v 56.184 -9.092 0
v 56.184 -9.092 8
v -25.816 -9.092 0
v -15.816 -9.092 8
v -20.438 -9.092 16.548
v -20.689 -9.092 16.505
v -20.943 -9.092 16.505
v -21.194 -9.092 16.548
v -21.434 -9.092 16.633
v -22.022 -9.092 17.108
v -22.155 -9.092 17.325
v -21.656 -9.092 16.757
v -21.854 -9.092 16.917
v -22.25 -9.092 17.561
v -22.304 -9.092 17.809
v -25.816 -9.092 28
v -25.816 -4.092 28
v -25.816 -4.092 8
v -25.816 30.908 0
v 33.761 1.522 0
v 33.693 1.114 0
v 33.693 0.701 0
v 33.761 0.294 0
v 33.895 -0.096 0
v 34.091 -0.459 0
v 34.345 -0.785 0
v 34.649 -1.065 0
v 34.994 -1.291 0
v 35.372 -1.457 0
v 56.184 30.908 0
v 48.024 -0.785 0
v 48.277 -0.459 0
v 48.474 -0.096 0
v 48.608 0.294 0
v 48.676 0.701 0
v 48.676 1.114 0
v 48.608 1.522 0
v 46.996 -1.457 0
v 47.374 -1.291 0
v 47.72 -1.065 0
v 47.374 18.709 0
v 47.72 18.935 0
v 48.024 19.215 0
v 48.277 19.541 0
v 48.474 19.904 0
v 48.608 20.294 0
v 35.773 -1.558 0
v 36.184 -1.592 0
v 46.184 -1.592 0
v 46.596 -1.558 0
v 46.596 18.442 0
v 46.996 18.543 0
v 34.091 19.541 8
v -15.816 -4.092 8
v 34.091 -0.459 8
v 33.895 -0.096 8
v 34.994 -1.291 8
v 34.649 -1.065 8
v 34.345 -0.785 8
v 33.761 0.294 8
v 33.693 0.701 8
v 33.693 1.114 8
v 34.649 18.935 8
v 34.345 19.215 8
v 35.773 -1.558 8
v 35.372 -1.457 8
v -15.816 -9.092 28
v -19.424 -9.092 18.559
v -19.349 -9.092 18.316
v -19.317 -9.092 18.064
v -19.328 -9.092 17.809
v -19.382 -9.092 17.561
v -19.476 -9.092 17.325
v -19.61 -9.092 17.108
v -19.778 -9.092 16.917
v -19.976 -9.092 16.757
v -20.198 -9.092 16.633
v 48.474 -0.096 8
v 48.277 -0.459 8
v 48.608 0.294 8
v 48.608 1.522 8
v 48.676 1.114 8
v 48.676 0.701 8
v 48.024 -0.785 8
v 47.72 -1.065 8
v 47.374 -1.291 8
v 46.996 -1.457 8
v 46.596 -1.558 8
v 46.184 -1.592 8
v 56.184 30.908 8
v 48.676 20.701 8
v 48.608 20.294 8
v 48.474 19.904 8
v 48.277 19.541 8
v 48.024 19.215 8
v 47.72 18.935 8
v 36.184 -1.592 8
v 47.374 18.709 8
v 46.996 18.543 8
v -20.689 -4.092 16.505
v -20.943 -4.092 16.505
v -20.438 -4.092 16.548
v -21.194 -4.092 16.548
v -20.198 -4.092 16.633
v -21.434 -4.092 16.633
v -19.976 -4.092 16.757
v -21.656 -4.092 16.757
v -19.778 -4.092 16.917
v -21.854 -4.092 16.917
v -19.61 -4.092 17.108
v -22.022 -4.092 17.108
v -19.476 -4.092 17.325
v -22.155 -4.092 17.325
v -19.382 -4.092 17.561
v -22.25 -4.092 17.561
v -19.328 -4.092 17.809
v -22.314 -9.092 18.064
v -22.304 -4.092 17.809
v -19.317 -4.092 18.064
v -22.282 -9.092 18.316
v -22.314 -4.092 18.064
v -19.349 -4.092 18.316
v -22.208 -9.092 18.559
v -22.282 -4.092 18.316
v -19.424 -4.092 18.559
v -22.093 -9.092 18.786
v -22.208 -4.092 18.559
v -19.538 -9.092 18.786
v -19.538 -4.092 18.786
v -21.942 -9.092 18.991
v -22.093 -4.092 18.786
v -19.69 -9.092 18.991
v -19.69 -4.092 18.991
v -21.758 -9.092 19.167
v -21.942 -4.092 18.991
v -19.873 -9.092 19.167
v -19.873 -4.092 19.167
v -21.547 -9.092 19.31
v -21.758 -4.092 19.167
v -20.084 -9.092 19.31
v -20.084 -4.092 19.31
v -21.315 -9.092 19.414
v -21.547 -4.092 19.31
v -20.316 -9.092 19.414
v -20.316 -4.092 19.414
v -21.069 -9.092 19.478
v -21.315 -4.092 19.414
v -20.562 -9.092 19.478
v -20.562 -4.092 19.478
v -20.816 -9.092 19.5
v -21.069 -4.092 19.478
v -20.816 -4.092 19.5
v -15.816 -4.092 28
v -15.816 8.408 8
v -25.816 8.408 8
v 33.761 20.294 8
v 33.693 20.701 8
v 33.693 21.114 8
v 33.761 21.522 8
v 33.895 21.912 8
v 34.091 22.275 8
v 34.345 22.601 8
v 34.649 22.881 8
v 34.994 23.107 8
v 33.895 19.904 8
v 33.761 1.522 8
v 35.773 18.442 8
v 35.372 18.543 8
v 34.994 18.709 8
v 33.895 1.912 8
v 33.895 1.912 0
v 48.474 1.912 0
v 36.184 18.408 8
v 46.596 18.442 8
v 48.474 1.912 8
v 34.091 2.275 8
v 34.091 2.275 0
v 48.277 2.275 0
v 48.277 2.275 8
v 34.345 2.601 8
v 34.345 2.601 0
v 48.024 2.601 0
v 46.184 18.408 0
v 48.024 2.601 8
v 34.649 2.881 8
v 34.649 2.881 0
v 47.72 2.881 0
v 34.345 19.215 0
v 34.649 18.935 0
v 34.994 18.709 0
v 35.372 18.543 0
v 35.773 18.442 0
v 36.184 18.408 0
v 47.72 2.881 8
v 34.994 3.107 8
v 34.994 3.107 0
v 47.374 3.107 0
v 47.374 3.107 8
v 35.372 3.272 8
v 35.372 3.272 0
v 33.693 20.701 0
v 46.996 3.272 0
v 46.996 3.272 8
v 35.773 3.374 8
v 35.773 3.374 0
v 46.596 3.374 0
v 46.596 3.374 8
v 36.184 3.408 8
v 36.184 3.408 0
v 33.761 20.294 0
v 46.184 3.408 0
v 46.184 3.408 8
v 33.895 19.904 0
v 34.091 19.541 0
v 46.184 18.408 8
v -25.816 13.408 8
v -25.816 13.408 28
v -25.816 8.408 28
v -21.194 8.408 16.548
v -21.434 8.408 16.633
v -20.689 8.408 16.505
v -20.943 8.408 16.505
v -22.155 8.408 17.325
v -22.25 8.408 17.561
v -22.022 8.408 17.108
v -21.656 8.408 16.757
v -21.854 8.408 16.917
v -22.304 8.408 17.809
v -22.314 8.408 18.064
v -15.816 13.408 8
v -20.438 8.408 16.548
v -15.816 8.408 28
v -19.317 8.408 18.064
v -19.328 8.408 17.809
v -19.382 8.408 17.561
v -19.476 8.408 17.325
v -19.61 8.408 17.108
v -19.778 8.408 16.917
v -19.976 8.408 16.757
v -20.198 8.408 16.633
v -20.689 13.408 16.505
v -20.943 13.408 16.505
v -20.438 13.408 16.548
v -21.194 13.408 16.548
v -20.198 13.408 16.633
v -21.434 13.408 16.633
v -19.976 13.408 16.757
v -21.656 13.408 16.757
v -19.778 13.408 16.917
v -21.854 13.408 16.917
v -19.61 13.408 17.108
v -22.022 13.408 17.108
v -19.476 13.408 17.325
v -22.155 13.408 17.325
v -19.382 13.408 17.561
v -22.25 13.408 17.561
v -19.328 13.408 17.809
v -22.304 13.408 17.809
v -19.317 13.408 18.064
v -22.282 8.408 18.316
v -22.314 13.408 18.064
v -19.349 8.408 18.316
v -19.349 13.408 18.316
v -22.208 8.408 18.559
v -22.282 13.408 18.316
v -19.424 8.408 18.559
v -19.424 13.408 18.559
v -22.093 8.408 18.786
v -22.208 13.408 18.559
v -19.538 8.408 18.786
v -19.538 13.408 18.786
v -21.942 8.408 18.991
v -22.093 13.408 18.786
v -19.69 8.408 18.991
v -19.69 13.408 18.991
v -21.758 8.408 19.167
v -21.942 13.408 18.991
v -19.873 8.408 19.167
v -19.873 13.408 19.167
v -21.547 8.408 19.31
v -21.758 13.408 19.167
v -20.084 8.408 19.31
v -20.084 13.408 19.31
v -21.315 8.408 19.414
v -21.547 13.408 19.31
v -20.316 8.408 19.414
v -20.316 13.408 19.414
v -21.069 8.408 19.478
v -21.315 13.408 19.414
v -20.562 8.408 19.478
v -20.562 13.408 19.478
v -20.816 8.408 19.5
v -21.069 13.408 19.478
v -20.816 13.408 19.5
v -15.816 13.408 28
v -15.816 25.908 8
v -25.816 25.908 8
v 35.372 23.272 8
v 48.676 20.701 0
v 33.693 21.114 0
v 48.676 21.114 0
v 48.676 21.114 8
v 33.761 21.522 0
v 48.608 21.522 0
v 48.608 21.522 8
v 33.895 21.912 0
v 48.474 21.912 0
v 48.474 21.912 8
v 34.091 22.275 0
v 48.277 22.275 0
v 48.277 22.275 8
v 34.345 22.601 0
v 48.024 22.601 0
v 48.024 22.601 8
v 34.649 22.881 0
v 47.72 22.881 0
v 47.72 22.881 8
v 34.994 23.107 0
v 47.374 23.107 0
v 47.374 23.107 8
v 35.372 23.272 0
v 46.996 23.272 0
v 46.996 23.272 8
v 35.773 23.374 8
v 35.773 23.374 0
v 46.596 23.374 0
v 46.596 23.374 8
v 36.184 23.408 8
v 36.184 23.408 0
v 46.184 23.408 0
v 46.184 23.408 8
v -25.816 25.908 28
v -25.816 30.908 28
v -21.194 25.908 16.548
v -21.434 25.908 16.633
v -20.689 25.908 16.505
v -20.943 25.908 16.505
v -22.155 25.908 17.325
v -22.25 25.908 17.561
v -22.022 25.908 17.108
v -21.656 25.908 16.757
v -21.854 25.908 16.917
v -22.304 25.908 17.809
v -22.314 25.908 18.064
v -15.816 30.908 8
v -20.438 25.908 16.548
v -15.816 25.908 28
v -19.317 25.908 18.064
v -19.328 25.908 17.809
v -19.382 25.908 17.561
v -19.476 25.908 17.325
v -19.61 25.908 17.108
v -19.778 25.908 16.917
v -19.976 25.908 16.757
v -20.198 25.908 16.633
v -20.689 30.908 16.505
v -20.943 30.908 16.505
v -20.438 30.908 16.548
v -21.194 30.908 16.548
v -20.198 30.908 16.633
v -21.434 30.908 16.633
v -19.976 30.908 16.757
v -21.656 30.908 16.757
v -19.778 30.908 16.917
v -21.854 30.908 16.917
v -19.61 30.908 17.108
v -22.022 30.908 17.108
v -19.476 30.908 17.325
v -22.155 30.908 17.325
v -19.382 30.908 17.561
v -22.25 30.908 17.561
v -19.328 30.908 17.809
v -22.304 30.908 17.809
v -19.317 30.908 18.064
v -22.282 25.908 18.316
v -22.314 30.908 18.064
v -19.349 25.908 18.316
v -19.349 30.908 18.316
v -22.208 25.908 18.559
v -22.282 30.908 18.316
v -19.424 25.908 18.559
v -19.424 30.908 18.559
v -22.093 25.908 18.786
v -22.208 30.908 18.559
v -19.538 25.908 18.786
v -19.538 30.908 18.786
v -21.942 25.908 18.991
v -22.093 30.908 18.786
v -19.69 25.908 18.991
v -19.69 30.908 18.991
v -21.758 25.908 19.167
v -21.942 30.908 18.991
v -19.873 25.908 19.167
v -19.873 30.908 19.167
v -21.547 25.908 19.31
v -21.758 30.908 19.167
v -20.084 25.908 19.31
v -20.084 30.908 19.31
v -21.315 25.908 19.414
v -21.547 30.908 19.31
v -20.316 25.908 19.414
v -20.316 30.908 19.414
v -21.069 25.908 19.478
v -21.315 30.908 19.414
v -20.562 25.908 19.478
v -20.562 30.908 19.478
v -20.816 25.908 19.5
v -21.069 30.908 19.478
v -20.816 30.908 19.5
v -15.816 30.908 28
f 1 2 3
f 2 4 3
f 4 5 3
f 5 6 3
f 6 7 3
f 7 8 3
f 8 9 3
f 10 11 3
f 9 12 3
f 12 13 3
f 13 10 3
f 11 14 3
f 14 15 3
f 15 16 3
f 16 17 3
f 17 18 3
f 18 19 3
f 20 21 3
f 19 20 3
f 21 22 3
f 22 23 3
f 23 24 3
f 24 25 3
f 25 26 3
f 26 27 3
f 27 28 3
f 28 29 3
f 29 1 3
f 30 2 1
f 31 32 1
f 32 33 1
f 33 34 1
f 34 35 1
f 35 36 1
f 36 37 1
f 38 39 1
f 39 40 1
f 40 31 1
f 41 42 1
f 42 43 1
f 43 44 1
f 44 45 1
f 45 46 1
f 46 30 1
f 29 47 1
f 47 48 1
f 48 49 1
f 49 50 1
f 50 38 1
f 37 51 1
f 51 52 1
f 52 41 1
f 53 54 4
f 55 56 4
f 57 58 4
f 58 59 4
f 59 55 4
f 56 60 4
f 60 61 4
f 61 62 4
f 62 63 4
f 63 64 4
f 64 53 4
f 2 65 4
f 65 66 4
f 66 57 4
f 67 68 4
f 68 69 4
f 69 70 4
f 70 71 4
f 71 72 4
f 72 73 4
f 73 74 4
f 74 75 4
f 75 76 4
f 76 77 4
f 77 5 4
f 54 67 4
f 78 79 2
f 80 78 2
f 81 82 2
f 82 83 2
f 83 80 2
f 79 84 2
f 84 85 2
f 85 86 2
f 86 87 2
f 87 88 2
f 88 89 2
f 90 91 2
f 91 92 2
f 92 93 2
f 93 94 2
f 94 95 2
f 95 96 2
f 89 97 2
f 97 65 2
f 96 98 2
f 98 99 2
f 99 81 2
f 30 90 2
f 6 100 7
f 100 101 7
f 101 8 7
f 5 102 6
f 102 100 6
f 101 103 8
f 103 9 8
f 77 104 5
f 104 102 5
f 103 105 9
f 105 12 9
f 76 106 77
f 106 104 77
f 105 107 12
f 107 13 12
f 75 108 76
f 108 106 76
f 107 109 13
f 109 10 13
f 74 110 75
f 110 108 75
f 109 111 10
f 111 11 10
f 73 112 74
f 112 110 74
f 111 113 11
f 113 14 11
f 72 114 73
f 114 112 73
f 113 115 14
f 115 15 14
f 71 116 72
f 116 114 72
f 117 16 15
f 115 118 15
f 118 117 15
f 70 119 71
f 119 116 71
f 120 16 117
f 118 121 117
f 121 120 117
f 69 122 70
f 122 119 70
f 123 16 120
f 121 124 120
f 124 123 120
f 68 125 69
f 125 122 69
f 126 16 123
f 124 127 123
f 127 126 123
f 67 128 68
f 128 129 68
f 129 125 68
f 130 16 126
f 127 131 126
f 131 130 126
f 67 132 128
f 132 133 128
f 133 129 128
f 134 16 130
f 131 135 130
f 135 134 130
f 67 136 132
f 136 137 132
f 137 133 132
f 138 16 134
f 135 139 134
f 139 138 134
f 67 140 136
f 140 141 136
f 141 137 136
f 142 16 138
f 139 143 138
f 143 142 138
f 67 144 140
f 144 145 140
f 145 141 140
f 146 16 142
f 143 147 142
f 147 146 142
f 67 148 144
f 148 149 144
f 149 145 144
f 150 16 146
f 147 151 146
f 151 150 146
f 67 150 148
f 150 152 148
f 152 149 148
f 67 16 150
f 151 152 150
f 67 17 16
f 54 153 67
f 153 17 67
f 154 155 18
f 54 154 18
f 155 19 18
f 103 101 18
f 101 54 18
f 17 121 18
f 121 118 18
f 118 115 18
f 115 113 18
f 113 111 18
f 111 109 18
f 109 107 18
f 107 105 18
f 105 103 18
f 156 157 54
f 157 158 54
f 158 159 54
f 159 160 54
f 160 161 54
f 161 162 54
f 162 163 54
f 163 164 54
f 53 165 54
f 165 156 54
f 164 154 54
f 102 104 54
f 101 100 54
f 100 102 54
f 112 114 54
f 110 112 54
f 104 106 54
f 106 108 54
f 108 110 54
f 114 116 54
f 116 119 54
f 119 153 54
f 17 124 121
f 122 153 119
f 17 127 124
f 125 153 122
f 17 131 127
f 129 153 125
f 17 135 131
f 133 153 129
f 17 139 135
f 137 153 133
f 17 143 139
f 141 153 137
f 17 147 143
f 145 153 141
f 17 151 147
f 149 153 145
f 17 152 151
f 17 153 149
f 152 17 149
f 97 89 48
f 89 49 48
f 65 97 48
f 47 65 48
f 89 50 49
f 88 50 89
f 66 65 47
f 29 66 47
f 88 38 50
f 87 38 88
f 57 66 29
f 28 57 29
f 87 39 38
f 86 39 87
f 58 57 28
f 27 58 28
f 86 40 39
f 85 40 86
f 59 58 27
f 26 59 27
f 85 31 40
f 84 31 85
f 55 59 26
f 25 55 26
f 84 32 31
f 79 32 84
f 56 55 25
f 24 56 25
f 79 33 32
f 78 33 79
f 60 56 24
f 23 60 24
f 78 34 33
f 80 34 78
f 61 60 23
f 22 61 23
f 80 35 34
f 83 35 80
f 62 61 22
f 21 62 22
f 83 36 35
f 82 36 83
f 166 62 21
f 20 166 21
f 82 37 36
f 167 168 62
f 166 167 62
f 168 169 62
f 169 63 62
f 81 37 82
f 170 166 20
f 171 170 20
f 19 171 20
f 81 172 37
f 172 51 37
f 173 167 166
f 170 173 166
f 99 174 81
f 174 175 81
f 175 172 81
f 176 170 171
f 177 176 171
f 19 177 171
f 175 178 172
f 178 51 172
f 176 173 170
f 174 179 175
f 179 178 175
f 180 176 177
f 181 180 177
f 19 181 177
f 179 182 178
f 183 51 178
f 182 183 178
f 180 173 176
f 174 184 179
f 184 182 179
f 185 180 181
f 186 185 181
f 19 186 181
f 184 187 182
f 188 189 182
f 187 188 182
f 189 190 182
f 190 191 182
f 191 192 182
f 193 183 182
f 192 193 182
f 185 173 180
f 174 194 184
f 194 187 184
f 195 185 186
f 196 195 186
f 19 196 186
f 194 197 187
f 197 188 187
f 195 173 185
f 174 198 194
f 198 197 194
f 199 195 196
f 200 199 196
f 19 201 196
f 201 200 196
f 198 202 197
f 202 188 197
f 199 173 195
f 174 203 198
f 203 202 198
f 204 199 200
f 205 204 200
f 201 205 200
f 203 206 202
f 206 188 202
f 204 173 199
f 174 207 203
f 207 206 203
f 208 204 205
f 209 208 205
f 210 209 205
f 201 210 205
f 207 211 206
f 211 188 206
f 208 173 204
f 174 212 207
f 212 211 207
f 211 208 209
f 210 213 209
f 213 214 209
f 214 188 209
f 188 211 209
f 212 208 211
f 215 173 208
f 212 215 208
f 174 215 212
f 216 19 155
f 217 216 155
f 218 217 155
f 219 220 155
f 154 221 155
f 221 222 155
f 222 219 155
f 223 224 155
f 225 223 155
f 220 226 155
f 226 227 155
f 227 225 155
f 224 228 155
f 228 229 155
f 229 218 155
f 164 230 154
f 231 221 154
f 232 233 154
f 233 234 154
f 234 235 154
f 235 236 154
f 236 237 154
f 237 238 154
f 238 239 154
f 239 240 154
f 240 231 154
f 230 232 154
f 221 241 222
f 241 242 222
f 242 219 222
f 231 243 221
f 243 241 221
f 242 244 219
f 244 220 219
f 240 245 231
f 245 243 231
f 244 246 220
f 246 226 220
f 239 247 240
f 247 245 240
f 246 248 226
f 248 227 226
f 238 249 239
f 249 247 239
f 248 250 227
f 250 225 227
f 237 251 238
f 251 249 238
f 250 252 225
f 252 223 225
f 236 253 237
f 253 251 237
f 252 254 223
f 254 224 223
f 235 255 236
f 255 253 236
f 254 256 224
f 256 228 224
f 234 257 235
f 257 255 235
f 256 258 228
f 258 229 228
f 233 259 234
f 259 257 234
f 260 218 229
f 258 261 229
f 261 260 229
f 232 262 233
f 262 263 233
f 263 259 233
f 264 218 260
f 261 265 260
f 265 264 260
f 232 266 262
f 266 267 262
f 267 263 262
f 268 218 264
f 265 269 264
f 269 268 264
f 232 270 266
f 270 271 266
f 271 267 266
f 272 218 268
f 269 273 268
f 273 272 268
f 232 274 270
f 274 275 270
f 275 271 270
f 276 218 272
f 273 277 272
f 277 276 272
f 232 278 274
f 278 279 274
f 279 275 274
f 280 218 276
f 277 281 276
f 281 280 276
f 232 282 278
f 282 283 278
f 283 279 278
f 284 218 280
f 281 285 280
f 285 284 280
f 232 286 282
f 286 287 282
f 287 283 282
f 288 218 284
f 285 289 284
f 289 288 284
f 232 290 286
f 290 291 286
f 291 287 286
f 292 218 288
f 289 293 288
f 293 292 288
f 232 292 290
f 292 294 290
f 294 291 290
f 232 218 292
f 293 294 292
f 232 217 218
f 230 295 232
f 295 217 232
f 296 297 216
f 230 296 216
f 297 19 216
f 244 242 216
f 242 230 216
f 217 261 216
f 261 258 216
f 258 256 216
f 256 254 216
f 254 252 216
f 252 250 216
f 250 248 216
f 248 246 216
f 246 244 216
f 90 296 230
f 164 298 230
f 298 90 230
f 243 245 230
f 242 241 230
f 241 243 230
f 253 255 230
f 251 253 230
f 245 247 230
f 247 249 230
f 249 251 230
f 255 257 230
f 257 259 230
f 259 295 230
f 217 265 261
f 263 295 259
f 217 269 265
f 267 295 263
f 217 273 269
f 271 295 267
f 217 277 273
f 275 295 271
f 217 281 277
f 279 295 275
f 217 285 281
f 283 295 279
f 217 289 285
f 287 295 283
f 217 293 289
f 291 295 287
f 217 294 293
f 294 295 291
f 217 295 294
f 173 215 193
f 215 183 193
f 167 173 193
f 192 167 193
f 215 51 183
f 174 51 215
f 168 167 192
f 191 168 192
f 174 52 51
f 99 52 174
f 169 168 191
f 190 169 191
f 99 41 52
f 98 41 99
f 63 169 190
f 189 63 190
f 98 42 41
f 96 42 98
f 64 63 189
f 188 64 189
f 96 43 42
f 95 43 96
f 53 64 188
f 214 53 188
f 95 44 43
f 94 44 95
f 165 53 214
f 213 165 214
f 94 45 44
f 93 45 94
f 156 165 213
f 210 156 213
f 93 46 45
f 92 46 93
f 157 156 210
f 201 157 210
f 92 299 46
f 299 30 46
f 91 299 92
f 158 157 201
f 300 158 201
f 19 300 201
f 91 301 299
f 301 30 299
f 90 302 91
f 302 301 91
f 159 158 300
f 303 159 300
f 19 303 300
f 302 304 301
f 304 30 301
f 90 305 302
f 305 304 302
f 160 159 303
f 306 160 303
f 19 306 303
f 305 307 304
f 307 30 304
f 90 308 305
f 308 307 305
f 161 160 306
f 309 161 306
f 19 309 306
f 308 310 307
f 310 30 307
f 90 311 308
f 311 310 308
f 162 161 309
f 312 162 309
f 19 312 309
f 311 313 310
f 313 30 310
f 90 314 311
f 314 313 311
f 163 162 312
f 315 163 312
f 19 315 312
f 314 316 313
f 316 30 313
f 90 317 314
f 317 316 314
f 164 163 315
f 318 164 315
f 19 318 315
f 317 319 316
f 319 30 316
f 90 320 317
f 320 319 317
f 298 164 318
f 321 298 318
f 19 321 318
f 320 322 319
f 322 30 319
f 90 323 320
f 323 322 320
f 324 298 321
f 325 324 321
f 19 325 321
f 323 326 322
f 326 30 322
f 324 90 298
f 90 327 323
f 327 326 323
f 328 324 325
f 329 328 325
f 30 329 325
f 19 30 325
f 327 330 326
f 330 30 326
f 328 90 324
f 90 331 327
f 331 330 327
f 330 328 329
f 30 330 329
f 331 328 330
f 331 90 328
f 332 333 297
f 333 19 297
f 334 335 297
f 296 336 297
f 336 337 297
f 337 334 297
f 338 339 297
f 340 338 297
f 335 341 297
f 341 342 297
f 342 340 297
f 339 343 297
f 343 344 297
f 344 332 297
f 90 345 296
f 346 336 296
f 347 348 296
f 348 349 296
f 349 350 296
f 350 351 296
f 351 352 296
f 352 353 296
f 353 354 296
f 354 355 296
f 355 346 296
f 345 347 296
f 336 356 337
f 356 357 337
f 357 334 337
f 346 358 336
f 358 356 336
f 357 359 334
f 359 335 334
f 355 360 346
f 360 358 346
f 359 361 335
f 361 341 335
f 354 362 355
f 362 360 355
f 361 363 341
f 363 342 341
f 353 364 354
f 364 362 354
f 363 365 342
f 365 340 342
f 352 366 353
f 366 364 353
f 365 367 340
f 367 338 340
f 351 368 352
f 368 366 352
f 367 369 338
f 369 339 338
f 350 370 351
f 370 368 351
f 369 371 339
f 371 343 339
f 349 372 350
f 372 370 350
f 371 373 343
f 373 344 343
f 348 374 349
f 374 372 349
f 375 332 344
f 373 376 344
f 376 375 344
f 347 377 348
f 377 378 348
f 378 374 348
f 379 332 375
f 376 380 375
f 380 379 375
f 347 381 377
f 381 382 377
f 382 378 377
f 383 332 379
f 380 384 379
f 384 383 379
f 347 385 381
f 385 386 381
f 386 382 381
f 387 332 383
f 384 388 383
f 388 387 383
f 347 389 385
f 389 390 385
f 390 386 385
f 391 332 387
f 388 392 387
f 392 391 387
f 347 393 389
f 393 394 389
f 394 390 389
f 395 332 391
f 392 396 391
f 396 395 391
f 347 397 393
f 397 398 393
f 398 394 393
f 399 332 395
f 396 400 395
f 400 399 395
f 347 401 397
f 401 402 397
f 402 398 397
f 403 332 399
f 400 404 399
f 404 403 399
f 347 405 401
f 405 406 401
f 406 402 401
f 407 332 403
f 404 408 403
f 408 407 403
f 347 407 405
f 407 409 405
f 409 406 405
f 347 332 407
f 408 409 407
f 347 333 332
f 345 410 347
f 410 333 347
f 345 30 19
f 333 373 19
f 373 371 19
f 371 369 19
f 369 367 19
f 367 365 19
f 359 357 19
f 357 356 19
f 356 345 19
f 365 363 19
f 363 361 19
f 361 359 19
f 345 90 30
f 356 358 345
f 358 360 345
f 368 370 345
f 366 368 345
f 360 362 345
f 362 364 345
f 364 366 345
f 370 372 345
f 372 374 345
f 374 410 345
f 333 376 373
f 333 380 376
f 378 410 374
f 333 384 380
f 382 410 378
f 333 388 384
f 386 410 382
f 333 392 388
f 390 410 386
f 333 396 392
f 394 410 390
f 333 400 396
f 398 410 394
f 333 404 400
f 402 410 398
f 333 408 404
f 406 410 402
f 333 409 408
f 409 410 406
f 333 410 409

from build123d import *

# Parameters (mm, degrees)
SKETCH_1_W          = 82
SKETCH_1_H          = 40
EXTRUDE_1_DEPTH     = 8
SKETCH_3_W          = 10
SKETCH_3_H          = 5
EXTRUDE_3_DEPTH     = 20
SKETCH_4_R          = 1.5
CUT_EXTRUDE_1_DEPTH = 47


with BuildPart() as part:
    # 草图1 → 凸台-拉伸1 (new body)
    with BuildSketch(Plane.XY):
        with Locations((15.184210526, 10.907894737)):
            Rectangle(SKETCH_1_W, SKETCH_1_H)
        with BuildLine():
            Line((46.184210526, -1.592105263), (36.184210526, -1.592105263))
            ThreePointArc((36.184210526, -1.592105263), (33.684210526, 0.907894737), (36.184210526, 3.407894737))
            Line((36.184210526, 3.407894737), (46.184210526, 3.407894737))
            ThreePointArc((46.184210526, 3.407894737), (48.684210526, 0.907894737), (46.184210526, -1.592105263))
        make_face(mode=Mode.SUBTRACT)
        with BuildLine():
            Line((46.184210526, 18.407894737), (36.184210526, 18.407894737))
            ThreePointArc((36.184210526, 18.407894737), (33.684210526, 20.907894737), (36.184210526, 23.407894737))
            Line((36.184210526, 23.407894737), (46.184210526, 23.407894737))
            ThreePointArc((46.184210526, 23.407894737), (48.684210526, 20.907894737), (46.184210526, 18.407894737))
        make_face(mode=Mode.SUBTRACT)
    extrude(amount=EXTRUDE_1_DEPTH)

    # 草图3 → 凸台-拉伸3 (add)
    with BuildSketch(Plane.XY.offset(8)):
        with Locations((-20.815789474, 28.407894737)):
            Rectangle(SKETCH_3_W, SKETCH_3_H)
        with Locations((-20.815789474, -6.592105263)):
            Rectangle(SKETCH_3_W, SKETCH_3_H)
        with Locations((-20.815789474, 10.907894737)):
            Rectangle(SKETCH_3_W, SKETCH_3_H)
    extrude(amount=EXTRUDE_3_DEPTH)

    # 草图4 → 切除-拉伸1 (cut)
    with BuildSketch(Plane(origin=(0, 30.907894737, 0), x_dir=(1, 0, 0), z_dir=(0, 1, 0))):
        with Locations(Location((-20.815789474, -18, 0), (0, 0, 270))):
            Circle(SKETCH_4_R)
    extrude(amount=-CUT_EXTRUDE_1_DEPTH, mode=Mode.SUBTRACT)


solid = part.part
